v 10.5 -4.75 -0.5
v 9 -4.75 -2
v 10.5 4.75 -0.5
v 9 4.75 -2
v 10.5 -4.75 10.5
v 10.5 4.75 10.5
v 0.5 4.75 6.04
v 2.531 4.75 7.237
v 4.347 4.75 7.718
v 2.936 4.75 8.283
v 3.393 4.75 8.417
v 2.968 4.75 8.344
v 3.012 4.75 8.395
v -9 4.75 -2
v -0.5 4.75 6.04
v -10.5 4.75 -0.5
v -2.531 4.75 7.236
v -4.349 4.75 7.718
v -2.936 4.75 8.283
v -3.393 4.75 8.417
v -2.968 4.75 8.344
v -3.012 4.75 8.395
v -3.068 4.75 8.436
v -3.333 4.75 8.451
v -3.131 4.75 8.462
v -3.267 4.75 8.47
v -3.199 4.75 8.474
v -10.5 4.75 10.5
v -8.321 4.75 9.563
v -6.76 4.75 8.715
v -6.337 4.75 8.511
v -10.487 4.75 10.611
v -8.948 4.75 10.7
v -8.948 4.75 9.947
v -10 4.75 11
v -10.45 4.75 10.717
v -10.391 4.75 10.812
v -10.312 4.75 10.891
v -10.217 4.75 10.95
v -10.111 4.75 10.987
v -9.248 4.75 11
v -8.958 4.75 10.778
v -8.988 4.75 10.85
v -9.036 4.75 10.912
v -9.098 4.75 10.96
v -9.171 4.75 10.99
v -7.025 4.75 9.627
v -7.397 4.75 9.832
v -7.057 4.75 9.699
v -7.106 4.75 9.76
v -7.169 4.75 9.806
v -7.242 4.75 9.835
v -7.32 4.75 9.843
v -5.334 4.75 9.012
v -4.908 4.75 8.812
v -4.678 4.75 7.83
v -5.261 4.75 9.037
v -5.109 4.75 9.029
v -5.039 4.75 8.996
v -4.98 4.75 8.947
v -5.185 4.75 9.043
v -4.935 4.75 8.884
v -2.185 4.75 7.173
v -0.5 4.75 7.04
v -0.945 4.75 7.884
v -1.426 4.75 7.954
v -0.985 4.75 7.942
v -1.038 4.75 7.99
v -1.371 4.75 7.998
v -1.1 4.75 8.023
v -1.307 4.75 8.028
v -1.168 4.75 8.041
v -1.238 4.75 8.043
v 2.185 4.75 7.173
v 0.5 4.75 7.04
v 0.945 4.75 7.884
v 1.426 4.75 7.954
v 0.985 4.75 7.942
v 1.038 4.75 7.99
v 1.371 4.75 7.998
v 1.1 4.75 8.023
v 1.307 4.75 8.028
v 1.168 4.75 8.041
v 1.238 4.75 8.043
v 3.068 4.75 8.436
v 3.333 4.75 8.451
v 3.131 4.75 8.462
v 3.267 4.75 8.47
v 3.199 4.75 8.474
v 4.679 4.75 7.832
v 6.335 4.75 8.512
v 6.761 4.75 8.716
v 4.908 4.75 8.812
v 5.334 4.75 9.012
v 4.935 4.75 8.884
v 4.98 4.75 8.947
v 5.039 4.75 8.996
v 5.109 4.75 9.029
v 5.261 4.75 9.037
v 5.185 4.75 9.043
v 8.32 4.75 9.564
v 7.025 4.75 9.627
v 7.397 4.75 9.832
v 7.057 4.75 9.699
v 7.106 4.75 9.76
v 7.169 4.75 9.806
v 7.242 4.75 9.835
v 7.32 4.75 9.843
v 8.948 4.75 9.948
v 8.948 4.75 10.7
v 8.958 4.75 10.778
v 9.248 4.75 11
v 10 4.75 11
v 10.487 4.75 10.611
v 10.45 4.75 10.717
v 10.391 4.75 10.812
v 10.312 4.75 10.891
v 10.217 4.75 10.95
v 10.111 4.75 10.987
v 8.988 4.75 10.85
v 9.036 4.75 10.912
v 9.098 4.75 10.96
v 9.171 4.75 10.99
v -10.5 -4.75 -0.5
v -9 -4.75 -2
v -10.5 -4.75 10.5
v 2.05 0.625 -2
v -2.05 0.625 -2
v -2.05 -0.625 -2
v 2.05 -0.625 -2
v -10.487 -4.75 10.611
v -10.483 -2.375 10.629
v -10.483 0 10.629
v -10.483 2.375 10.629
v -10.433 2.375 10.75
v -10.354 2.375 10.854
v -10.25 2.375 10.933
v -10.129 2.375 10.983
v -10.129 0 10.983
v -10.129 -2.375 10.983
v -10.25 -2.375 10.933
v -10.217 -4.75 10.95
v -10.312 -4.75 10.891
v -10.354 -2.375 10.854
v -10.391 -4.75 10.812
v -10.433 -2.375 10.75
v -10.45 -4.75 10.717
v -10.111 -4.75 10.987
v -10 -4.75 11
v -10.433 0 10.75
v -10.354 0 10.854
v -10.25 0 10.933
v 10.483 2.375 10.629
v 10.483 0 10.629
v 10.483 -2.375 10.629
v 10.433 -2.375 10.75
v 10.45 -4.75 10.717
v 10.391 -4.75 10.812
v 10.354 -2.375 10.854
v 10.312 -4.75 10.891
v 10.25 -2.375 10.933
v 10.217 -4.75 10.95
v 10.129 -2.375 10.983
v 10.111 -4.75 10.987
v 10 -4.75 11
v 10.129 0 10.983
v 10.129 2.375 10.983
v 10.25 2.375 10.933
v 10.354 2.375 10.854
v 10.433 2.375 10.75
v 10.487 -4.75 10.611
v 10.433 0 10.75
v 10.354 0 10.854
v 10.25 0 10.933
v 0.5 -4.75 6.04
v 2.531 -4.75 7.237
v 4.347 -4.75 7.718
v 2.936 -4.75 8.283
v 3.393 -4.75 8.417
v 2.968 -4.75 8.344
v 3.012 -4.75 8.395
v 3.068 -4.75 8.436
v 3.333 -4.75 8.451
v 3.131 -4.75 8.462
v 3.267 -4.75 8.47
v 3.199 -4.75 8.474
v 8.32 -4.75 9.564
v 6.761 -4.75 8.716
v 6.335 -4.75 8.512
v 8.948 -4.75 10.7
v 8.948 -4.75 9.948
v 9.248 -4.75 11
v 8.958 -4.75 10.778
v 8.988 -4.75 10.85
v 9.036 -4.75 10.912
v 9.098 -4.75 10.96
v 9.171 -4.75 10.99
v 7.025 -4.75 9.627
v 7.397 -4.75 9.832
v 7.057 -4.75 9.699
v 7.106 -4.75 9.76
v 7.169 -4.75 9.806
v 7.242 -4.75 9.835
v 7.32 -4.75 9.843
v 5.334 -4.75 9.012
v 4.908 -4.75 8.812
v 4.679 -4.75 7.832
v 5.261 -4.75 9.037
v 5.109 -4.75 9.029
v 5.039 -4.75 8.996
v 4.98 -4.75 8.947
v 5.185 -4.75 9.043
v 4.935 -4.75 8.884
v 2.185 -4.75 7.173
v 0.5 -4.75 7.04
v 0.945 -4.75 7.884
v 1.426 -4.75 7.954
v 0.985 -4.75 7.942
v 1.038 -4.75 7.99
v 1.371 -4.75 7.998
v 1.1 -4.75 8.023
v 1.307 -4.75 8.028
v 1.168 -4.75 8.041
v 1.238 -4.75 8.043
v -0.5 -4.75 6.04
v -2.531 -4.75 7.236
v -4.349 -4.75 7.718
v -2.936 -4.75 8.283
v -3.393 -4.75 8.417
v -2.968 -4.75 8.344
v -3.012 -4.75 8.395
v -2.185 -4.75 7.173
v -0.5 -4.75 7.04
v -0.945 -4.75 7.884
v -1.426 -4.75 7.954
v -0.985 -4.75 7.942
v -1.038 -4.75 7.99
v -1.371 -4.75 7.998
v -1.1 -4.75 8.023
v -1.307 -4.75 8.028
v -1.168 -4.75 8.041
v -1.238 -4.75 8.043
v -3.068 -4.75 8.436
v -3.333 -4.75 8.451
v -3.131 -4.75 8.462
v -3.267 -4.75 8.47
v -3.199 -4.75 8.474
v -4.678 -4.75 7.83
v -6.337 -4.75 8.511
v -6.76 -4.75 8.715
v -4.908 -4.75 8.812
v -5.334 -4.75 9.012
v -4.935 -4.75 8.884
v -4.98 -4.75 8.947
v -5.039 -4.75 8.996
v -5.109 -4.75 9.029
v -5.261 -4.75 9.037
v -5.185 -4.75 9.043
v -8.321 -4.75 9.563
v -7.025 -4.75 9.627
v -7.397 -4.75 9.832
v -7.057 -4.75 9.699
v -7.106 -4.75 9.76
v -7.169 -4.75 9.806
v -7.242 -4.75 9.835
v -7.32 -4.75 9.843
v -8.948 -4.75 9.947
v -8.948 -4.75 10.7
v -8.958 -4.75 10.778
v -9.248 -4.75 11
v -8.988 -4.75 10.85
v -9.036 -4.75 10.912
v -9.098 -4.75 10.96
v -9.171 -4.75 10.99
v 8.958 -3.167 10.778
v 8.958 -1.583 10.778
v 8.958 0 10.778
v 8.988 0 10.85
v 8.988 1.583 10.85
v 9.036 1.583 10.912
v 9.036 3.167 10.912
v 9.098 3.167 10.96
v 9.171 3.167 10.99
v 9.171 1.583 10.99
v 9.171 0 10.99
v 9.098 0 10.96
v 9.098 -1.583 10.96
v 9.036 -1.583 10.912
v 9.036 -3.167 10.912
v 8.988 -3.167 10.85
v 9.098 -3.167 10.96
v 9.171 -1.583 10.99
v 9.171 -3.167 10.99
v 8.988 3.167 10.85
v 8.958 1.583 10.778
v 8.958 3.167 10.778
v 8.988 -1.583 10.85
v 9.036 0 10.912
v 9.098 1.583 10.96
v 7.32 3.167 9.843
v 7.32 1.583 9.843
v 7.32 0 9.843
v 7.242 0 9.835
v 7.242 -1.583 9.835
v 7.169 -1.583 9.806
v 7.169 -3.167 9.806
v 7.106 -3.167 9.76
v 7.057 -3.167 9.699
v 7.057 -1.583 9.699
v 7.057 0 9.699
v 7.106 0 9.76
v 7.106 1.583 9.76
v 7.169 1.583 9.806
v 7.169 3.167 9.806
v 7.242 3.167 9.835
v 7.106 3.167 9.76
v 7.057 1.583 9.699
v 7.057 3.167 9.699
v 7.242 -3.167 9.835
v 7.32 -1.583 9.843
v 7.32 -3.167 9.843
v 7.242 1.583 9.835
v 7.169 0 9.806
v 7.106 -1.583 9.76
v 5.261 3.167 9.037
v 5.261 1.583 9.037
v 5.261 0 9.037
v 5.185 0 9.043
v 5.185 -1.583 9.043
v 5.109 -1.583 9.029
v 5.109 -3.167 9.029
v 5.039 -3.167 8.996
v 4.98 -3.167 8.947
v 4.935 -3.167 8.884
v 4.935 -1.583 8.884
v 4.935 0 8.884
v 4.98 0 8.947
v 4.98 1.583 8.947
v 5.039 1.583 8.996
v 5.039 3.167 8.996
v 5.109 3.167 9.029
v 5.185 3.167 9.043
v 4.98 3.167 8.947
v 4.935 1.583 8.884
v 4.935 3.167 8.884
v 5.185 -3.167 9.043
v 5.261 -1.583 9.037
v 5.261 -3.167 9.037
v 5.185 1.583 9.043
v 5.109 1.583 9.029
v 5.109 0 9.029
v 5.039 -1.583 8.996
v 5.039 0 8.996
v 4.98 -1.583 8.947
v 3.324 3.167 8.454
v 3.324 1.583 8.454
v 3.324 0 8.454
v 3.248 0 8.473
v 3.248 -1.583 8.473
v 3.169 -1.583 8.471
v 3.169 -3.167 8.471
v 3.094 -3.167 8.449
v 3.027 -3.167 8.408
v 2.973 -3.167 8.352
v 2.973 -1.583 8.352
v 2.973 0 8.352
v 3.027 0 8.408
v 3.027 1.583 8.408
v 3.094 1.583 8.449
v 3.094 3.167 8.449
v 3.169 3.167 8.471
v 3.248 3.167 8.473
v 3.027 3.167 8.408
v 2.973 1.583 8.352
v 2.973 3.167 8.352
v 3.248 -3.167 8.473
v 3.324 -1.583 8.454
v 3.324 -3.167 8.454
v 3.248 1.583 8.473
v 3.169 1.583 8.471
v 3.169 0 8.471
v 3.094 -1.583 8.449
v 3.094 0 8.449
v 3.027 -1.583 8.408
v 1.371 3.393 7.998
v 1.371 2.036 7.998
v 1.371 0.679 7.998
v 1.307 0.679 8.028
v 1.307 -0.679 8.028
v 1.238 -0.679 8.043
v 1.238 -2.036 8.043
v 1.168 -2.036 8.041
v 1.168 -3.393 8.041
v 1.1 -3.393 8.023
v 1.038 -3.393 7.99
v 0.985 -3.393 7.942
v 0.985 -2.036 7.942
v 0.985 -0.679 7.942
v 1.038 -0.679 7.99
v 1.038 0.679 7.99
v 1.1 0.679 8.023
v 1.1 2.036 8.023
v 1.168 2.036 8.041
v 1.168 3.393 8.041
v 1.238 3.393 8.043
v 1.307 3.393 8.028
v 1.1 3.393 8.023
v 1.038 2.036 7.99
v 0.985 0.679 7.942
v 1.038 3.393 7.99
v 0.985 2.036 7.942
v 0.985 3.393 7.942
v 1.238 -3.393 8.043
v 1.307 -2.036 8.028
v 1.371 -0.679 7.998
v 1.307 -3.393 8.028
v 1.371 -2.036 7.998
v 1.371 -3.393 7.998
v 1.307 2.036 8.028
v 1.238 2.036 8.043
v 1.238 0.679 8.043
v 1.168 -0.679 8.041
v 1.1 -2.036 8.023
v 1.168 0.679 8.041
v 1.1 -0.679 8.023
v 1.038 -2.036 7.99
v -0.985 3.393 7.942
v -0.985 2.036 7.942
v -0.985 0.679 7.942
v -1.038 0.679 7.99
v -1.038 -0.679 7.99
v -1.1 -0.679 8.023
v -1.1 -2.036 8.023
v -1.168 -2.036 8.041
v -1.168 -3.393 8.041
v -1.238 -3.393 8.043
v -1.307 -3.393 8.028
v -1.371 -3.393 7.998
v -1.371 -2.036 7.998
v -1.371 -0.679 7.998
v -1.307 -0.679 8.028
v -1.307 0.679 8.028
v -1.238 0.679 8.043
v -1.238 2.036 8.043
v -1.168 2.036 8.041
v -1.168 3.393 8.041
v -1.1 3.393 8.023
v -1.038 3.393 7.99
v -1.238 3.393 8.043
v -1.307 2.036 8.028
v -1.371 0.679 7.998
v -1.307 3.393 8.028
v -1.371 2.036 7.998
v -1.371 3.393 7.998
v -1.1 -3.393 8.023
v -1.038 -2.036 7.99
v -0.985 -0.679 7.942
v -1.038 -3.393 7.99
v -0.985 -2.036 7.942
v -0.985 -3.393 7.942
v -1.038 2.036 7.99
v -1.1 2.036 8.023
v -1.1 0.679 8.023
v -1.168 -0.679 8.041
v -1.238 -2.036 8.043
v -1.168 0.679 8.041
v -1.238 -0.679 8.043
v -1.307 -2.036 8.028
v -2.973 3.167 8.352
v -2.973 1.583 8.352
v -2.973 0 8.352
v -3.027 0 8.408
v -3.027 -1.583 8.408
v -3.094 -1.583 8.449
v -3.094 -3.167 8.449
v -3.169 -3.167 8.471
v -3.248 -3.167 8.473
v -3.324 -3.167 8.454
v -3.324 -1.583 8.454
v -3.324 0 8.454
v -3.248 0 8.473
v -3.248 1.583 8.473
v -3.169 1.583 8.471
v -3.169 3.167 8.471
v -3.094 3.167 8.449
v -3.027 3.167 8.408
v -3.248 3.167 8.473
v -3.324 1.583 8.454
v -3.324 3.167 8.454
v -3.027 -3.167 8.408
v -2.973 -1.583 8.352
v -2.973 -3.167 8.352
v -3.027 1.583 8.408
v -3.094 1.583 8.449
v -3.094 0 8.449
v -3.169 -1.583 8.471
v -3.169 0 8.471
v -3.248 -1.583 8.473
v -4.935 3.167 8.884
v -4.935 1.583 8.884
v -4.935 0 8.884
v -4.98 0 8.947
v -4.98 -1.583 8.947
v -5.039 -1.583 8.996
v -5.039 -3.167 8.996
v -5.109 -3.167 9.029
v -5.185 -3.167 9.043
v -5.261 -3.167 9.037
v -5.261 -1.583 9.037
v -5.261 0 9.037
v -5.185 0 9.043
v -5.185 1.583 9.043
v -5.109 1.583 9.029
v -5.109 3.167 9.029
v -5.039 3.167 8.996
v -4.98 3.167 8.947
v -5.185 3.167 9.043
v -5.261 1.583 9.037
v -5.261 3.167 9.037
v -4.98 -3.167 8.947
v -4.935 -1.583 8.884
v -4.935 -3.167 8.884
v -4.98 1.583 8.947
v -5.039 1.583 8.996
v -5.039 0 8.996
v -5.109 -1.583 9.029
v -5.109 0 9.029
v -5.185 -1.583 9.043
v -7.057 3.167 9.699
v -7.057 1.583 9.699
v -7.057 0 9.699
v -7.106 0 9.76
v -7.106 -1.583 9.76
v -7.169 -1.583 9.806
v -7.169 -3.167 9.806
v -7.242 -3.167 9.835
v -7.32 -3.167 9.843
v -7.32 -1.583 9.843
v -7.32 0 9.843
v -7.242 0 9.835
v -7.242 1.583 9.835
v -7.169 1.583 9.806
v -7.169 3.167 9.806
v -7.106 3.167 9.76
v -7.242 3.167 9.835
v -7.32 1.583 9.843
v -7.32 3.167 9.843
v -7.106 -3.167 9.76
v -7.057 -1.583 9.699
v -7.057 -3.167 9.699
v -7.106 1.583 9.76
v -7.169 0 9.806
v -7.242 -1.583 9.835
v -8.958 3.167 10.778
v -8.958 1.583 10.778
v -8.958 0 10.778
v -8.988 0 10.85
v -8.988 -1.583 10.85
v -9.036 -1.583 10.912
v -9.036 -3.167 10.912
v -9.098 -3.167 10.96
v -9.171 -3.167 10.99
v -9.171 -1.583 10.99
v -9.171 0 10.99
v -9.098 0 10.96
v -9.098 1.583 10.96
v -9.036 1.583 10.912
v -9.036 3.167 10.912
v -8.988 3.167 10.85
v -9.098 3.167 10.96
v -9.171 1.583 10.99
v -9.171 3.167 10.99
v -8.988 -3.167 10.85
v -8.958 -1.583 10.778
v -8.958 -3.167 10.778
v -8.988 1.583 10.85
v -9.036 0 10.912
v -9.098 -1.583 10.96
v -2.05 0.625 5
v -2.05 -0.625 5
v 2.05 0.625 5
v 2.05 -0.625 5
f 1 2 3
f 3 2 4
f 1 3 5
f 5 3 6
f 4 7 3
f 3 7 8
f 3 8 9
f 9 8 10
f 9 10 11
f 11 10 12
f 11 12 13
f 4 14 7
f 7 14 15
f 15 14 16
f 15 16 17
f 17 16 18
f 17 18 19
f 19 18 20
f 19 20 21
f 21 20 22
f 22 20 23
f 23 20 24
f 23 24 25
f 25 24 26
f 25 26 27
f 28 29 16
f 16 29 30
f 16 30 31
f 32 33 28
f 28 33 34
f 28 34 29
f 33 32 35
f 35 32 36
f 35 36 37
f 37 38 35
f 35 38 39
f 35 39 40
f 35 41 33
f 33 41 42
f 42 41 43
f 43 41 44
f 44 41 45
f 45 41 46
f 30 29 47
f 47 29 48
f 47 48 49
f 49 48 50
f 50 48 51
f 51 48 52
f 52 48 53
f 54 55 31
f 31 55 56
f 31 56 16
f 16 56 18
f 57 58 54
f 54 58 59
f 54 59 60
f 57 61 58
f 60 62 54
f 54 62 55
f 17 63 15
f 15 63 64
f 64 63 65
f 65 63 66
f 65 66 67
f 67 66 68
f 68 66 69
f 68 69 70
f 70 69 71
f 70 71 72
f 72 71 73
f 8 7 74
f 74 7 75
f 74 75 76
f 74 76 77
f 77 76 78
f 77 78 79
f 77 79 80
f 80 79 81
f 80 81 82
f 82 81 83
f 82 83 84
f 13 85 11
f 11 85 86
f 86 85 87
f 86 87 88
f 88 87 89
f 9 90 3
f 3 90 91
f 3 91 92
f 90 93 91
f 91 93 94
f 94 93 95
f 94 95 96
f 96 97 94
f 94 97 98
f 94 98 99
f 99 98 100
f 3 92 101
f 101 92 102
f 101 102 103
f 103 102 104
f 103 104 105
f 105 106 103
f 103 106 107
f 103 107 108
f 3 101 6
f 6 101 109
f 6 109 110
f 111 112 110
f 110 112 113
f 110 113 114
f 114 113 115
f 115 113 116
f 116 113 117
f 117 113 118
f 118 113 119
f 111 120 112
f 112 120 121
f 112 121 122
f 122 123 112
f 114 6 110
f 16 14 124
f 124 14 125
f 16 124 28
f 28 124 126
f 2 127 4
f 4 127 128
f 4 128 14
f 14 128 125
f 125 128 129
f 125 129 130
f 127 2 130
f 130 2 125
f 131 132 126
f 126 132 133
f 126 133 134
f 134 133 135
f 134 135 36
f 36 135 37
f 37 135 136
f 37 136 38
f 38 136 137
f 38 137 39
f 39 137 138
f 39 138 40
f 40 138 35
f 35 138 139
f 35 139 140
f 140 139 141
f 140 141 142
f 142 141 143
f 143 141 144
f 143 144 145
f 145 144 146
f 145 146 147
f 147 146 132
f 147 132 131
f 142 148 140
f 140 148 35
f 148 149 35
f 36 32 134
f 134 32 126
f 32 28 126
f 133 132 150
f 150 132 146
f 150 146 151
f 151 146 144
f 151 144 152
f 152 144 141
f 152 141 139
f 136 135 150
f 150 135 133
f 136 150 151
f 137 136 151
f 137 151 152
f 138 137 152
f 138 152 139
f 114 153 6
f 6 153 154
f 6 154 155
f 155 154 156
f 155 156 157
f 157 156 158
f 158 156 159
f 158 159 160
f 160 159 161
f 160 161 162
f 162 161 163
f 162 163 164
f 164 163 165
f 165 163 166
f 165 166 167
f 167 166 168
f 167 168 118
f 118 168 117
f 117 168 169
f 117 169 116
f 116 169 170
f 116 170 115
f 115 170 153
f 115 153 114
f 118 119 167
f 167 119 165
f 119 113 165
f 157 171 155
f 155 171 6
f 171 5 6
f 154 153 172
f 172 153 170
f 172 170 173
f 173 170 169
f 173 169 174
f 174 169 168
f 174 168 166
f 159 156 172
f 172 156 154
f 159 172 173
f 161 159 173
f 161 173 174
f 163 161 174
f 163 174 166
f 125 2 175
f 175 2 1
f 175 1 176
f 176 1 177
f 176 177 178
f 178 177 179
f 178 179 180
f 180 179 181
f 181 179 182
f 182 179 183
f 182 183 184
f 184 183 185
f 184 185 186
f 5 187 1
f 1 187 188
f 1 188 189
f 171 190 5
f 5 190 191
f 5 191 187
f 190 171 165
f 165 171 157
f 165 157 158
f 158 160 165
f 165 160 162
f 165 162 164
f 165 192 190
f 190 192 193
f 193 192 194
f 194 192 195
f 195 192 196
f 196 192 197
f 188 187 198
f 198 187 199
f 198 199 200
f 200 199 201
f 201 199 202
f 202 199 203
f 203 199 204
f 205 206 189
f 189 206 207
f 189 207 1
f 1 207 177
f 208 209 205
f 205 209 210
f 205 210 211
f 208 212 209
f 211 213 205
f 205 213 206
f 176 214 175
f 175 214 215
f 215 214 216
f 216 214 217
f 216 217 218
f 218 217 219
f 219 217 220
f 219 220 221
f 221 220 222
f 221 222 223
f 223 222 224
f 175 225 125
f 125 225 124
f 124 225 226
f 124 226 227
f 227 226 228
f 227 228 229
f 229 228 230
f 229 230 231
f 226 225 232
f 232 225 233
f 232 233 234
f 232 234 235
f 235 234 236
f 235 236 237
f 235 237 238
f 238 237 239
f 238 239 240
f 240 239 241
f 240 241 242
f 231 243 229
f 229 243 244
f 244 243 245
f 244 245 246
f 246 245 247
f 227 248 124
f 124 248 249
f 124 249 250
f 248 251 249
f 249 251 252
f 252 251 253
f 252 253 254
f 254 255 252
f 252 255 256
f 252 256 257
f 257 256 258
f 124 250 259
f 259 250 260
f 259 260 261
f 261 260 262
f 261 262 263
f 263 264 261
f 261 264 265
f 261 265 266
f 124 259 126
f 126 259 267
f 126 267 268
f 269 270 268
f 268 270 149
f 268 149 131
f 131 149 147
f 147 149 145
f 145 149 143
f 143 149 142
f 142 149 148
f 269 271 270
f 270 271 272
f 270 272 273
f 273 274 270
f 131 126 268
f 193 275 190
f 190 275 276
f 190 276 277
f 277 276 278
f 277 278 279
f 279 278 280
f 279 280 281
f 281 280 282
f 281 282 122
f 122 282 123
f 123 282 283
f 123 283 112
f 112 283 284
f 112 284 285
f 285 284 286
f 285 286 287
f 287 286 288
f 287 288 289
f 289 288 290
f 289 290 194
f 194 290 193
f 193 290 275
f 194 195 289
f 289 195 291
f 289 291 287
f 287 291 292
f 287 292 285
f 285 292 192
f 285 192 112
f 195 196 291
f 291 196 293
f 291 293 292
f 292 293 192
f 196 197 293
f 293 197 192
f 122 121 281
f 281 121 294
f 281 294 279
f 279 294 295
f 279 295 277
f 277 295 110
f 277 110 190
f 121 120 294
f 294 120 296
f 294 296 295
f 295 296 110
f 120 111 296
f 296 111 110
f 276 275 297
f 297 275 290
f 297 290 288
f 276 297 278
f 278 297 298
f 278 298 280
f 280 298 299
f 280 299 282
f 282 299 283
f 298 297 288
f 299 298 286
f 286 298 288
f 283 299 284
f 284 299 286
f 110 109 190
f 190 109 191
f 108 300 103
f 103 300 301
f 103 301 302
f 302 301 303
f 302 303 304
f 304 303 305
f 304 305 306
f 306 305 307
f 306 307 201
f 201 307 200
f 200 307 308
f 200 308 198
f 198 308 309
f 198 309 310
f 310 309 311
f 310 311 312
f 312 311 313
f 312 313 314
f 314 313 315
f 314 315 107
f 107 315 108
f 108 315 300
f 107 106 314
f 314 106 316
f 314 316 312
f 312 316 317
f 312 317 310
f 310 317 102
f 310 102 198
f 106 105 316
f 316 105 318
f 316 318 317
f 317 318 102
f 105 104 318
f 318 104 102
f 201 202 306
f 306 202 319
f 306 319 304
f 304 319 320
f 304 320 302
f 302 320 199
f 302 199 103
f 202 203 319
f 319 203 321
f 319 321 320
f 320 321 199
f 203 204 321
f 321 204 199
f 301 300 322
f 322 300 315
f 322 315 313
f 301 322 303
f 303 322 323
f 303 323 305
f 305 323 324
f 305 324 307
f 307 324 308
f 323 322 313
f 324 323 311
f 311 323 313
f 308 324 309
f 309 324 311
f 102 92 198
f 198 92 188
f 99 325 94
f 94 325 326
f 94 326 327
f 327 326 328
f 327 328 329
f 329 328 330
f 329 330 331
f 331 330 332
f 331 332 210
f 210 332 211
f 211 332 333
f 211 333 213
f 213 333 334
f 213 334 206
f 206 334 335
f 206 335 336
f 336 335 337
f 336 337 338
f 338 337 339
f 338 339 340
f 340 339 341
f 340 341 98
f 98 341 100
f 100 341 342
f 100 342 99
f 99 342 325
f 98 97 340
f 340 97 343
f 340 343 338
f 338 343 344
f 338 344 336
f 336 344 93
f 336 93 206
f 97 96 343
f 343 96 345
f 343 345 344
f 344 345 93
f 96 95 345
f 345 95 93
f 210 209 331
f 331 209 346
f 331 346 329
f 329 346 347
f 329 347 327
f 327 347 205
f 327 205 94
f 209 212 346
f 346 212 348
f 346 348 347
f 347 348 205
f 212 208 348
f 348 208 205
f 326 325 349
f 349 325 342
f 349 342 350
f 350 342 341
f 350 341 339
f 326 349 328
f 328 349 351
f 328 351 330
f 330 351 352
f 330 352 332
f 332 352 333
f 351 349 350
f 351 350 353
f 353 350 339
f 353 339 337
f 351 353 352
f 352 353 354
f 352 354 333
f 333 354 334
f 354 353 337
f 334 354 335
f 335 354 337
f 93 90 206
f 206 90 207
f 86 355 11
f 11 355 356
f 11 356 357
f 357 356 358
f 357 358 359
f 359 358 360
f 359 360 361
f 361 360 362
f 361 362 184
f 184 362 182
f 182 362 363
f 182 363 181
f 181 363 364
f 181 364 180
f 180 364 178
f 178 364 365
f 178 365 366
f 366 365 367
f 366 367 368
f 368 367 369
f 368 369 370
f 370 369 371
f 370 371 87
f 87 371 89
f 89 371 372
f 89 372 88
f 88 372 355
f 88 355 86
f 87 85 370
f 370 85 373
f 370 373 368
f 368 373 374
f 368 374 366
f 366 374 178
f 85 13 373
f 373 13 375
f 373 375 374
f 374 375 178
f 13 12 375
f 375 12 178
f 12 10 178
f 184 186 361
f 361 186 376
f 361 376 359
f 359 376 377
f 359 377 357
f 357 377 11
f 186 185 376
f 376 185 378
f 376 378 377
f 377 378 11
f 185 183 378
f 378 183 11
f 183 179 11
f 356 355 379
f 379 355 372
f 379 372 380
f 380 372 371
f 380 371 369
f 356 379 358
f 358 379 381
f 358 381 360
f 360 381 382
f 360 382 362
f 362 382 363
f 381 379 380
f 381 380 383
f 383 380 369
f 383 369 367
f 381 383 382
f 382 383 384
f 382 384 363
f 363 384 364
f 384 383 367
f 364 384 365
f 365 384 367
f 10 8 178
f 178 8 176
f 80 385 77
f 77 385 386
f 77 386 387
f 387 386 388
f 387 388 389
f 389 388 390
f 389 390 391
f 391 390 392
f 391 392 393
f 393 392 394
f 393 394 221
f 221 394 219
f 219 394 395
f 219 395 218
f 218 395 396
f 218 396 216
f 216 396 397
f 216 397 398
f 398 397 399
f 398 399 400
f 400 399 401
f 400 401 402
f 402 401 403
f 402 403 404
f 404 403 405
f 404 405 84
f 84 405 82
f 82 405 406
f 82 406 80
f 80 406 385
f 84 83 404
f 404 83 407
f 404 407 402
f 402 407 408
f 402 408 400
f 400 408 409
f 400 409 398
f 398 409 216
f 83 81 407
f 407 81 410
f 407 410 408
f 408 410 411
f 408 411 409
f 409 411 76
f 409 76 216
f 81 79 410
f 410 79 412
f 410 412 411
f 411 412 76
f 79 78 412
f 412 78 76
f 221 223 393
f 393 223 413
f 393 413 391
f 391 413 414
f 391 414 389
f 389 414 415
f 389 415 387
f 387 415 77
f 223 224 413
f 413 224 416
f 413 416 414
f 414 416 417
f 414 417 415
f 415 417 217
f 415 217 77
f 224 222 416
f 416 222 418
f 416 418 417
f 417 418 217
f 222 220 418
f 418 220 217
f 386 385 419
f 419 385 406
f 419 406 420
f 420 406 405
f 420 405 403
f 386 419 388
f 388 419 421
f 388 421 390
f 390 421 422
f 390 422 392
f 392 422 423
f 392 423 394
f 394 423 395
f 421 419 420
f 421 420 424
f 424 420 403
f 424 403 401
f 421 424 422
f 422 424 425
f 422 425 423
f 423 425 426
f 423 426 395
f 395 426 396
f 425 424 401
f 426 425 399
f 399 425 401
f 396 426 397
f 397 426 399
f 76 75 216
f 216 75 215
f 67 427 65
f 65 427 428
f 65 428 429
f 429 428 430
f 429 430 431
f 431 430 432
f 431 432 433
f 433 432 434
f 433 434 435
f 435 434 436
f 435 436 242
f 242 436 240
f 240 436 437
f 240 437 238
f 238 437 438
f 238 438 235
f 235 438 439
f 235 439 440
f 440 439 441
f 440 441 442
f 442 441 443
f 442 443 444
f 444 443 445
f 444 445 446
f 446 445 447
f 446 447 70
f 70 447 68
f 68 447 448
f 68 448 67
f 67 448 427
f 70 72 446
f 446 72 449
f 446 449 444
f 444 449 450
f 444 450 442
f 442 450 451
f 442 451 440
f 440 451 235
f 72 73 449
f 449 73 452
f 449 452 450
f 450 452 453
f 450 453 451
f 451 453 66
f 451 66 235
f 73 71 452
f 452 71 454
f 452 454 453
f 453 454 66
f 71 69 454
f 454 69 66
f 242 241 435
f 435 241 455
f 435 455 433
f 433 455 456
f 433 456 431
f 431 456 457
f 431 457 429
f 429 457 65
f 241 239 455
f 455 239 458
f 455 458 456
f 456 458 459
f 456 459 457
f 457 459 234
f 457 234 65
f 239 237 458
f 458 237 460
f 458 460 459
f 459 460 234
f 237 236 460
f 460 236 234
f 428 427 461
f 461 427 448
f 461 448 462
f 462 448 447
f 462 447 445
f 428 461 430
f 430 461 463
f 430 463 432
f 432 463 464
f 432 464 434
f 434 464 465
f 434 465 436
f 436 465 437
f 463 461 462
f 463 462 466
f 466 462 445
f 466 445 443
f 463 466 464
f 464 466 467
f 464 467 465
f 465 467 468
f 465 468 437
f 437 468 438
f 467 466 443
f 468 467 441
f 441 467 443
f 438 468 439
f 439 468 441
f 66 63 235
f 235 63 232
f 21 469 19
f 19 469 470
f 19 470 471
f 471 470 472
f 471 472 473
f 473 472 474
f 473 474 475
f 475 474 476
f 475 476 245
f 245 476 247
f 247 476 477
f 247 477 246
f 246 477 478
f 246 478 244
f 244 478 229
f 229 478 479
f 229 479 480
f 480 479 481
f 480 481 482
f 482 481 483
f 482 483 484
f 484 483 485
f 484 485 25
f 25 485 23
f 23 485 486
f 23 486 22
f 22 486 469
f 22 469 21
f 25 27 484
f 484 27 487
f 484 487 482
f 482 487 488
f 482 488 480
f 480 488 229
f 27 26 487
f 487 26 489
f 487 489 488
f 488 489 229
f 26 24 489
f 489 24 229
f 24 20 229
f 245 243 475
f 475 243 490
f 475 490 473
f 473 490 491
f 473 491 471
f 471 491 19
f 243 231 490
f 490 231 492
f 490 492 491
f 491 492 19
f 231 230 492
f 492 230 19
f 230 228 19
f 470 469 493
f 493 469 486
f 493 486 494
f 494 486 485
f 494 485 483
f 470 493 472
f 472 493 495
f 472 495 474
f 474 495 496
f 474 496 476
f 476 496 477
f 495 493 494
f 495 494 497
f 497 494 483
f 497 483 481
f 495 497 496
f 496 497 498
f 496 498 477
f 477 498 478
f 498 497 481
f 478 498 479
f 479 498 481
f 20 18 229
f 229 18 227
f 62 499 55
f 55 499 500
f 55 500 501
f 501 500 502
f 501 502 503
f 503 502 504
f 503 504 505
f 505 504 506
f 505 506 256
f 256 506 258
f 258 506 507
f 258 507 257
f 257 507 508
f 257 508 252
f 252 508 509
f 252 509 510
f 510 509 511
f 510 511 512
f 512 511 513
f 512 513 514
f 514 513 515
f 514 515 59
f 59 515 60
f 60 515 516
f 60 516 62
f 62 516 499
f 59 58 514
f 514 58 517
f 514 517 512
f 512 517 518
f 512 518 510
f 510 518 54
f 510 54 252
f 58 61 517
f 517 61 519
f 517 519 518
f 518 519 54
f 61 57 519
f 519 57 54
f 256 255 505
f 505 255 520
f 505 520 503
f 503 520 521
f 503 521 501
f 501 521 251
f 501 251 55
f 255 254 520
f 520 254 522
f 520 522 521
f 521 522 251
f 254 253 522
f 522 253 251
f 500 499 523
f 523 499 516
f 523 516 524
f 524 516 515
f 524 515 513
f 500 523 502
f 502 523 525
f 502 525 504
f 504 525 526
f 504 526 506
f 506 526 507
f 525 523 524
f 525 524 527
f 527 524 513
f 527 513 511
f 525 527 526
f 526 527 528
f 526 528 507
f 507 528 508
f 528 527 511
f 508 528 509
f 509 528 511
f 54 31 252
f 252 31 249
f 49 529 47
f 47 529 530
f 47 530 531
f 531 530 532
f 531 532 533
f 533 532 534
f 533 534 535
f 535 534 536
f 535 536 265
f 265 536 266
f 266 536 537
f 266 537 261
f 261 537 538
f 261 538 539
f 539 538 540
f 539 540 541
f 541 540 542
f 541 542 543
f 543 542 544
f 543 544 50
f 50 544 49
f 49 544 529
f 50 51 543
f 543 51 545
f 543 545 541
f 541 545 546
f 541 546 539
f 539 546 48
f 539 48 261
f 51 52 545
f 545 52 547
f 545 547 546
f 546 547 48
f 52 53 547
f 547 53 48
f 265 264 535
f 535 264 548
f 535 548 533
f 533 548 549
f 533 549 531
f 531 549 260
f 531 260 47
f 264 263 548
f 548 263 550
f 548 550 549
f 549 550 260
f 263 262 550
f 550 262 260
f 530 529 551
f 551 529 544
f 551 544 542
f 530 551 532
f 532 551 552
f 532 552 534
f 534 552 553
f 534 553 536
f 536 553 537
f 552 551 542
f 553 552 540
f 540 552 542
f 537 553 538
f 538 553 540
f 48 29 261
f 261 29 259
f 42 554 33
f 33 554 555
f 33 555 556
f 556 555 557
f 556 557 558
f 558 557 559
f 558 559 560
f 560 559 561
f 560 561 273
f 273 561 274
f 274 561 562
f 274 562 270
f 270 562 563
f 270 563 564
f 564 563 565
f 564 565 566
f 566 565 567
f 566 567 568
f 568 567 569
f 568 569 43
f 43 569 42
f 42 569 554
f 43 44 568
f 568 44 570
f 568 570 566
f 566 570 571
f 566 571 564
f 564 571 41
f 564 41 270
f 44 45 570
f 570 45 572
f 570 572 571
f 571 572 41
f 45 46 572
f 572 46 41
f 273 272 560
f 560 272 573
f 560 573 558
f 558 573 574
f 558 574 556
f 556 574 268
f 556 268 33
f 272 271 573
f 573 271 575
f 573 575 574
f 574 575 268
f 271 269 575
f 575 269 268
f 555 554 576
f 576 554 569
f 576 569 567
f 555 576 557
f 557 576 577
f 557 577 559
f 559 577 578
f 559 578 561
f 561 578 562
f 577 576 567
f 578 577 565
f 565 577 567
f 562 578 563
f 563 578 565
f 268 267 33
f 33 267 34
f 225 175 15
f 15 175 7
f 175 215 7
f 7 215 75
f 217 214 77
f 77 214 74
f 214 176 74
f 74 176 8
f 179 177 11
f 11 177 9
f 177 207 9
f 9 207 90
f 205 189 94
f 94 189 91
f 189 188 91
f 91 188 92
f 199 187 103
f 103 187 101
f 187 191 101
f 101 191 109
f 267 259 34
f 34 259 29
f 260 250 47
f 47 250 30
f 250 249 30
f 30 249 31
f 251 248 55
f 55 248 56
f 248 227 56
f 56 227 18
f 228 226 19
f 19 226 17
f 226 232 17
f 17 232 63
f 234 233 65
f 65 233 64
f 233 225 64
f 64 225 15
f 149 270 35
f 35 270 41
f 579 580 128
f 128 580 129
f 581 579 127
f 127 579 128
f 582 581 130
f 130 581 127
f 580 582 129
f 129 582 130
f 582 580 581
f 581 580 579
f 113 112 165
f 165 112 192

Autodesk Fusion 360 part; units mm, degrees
sketch "Sketch1" plane through (0, 0, 0) normal (0, 0, 1) x (1, 0, 0)
  line L0 (10.5, -4.75) -> (-10.5, -4.75)
  line L1 (-10.5, -4.75) -> (-10.5, 4.75)
  line L2 (-10.5, 4.75) -> (10.5, 4.75)
  line L3 (10.5, 4.75) -> (10.5, -4.75)
  line L4 (10.5, -4.75) -> (-10.5, 4.75) construction
  line L5 (-10.5, -4.75) -> (10.5, 4.75) construction
  dimension "d1" = 21
  dimension "d2" = 9.5
extrude "Extrude1" add sketch "Sketch1" along normal blind 11
sketch "Sketch2" plane through (0, 0, 0) normal (0, 0, -1) x (1, 0, 0)
  line L0 (-10.5, -4.75) -> (10.5, -4.75)
  line L1 (10.5, -4.75) -> (10.5, 4.75)
  line L2 (10.5, 4.75) -> (-10.5, 4.75)
  line L3 (-10.5, 4.75) -> (-10.5, -4.75)
  line L4 (2.05, -0.625) -> (-2.05, -0.625)
  line L5 (-2.05, -0.625) -> (-2.05, 0.625)
  line L6 (-2.05, 0.625) -> (2.05, 0.625)
  line L7 (2.05, 0.625) -> (2.05, -0.625)
  line L8 (2.05, -0.625) -> (-2.05, 0.625) construction
  line L9 (-2.05, -0.625) -> (2.05, 0.625) construction
  dimension "d5" = 4.1
  dimension "d6" = 1.25
sketch "Sketch3" plane through (0, -4.75, 0) normal (0, -1, 0) x (1, 0, 0)
  line L0 (-10.5, 0) -> (10.5, 0)
  line L1 (10.5, 0) -> (10.5, 11)
  line L2 (10.5, 11) -> (-10.5, 11)
  line L3 (-10.5, 11) -> (-10.5, 0)
  spline S0 degree 5 poles (-10.5, 11) (-10.0801, 10.6955) (-9.2404, 10.113) (-7.9808, 9.3191) (-6.3012, 8.4228) (-4.2016, 7.5911) (-2.1018, 7.0739) (-0.0019, 6.8968) (2.0982, 7.0739) (4.1984, 7.5912) (6.2988, 8.4229) (7.9792, 9.3192) (9.2396, 10.1131) (10.0799, 10.6955) (10.5, 11) knots 0 0 0 0 0 0 0.1 0.2 0.3 0.4 0.5 0.6 0.7 0.8 0.9 1 1 1 1 1 1
  line L4 (-0.0031, 6.9851) -> (-0.0336, 6.9851)
  line L5 (-0.5, 7.0404) -> (-0.5, 6.0404)
  line L6 (-0.5, 6.0404) -> (0.5, 6.0404)
  line L7 (0.5, 6.0404) -> (0.5, 6.9951)
  line L8 (0, 11) -> (0, 10) construction
  line L9 (-0.5, 7.0404) -> (-1.1379, 8.2493)
  line L10 (-1.1379, 8.2493) -> (-2.1854, 7.1728)
  line L11 (-2.5306, 7.2364) -> (-3.0769, 8.6476)
  line L12 (-3.0769, 8.6476) -> (-4.3485, 7.7175)
  line L13 (-4.6784, 7.8304) -> (-4.9948, 9.181)
  line L14 (-4.9948, 9.181) -> (-6.3365, 8.5115)
  line L15 (-6.7604, 8.715) -> (-7.1089, 9.9152)
  line L16 (-7.1089, 9.9152) -> (-8.3208, 9.5633)
  line L17 (-8.9482, 9.9473) -> (-8.9482, 11)
  line L18 (0.5, 6.9951) -> (0.5, 7.565)
  line L19 (0.5, 7.0404) -> (1.1379, 8.2493)
  line L20 (1.1379, 8.2493) -> (2.1854, 7.1728)
  line L21 (2.5306, 7.2364) -> (3.0769, 8.6476)
  line L22 (3.0769, 8.6476) -> (4.3485, 7.7175)
  line L23 (4.6784, 7.8304) -> (4.9948, 9.181)
  line L24 (4.9948, 9.181) -> (6.3365, 8.5115)
  line L25 (6.7604, 8.715) -> (7.1089, 9.9152)
  line L26 (7.1089, 9.9152) -> (8.3208, 9.5633)
  line L27 (8.9482, 9.9473) -> (8.9482, 11)
  point P0 (-0.0031, 6.9851)
  dimension "d10" = 0.5
  dimension "d11" = 1
  dimension "d12" = 1
extrude "Extrude2" cut sketch "Sketch2" against normal blind 5 contours L4 L5 L6 L7
extrude "Extrude5" cut sketch "Sketch3" against normal blind 9.5 contours L2 S0 L4 L5 L9 L10 L11 L12 L13 L14 L15 L16 L17 L18 L19 L20 L21 L22 L23 L24 L25 L26 L27 | S0 L4 L5 L6 L7
fillet "Fillet2" radius 0.3 10 edges at (-8.9482, 0, 11) (-7.1089, 0, 9.9152) (-4.9948, 0, 9.181) (-3.0769, 0, 8.6476) (-1.1379, 0, 8.2493) (1.1379, 0, 8.2493) (3.0769, 0, 8.6476) (4.9948, 0, 9.181) (7.1089, 0, 9.9152) (8.9482, 0, 11)
fillet "Fillet3" radius 0.5 2 edges at (10.5, 0, 11) (-10.5, 0, 11)
extrude "Extrude6" add 1 faces at (-7.6833, 0.2083, 0) along direction (0, 0, -1) blind 2
chamfer "Chamfer2" distance 1.5 angle 45 2 edges at (-10.5, 0, -2) (10.5, 0, -2)
